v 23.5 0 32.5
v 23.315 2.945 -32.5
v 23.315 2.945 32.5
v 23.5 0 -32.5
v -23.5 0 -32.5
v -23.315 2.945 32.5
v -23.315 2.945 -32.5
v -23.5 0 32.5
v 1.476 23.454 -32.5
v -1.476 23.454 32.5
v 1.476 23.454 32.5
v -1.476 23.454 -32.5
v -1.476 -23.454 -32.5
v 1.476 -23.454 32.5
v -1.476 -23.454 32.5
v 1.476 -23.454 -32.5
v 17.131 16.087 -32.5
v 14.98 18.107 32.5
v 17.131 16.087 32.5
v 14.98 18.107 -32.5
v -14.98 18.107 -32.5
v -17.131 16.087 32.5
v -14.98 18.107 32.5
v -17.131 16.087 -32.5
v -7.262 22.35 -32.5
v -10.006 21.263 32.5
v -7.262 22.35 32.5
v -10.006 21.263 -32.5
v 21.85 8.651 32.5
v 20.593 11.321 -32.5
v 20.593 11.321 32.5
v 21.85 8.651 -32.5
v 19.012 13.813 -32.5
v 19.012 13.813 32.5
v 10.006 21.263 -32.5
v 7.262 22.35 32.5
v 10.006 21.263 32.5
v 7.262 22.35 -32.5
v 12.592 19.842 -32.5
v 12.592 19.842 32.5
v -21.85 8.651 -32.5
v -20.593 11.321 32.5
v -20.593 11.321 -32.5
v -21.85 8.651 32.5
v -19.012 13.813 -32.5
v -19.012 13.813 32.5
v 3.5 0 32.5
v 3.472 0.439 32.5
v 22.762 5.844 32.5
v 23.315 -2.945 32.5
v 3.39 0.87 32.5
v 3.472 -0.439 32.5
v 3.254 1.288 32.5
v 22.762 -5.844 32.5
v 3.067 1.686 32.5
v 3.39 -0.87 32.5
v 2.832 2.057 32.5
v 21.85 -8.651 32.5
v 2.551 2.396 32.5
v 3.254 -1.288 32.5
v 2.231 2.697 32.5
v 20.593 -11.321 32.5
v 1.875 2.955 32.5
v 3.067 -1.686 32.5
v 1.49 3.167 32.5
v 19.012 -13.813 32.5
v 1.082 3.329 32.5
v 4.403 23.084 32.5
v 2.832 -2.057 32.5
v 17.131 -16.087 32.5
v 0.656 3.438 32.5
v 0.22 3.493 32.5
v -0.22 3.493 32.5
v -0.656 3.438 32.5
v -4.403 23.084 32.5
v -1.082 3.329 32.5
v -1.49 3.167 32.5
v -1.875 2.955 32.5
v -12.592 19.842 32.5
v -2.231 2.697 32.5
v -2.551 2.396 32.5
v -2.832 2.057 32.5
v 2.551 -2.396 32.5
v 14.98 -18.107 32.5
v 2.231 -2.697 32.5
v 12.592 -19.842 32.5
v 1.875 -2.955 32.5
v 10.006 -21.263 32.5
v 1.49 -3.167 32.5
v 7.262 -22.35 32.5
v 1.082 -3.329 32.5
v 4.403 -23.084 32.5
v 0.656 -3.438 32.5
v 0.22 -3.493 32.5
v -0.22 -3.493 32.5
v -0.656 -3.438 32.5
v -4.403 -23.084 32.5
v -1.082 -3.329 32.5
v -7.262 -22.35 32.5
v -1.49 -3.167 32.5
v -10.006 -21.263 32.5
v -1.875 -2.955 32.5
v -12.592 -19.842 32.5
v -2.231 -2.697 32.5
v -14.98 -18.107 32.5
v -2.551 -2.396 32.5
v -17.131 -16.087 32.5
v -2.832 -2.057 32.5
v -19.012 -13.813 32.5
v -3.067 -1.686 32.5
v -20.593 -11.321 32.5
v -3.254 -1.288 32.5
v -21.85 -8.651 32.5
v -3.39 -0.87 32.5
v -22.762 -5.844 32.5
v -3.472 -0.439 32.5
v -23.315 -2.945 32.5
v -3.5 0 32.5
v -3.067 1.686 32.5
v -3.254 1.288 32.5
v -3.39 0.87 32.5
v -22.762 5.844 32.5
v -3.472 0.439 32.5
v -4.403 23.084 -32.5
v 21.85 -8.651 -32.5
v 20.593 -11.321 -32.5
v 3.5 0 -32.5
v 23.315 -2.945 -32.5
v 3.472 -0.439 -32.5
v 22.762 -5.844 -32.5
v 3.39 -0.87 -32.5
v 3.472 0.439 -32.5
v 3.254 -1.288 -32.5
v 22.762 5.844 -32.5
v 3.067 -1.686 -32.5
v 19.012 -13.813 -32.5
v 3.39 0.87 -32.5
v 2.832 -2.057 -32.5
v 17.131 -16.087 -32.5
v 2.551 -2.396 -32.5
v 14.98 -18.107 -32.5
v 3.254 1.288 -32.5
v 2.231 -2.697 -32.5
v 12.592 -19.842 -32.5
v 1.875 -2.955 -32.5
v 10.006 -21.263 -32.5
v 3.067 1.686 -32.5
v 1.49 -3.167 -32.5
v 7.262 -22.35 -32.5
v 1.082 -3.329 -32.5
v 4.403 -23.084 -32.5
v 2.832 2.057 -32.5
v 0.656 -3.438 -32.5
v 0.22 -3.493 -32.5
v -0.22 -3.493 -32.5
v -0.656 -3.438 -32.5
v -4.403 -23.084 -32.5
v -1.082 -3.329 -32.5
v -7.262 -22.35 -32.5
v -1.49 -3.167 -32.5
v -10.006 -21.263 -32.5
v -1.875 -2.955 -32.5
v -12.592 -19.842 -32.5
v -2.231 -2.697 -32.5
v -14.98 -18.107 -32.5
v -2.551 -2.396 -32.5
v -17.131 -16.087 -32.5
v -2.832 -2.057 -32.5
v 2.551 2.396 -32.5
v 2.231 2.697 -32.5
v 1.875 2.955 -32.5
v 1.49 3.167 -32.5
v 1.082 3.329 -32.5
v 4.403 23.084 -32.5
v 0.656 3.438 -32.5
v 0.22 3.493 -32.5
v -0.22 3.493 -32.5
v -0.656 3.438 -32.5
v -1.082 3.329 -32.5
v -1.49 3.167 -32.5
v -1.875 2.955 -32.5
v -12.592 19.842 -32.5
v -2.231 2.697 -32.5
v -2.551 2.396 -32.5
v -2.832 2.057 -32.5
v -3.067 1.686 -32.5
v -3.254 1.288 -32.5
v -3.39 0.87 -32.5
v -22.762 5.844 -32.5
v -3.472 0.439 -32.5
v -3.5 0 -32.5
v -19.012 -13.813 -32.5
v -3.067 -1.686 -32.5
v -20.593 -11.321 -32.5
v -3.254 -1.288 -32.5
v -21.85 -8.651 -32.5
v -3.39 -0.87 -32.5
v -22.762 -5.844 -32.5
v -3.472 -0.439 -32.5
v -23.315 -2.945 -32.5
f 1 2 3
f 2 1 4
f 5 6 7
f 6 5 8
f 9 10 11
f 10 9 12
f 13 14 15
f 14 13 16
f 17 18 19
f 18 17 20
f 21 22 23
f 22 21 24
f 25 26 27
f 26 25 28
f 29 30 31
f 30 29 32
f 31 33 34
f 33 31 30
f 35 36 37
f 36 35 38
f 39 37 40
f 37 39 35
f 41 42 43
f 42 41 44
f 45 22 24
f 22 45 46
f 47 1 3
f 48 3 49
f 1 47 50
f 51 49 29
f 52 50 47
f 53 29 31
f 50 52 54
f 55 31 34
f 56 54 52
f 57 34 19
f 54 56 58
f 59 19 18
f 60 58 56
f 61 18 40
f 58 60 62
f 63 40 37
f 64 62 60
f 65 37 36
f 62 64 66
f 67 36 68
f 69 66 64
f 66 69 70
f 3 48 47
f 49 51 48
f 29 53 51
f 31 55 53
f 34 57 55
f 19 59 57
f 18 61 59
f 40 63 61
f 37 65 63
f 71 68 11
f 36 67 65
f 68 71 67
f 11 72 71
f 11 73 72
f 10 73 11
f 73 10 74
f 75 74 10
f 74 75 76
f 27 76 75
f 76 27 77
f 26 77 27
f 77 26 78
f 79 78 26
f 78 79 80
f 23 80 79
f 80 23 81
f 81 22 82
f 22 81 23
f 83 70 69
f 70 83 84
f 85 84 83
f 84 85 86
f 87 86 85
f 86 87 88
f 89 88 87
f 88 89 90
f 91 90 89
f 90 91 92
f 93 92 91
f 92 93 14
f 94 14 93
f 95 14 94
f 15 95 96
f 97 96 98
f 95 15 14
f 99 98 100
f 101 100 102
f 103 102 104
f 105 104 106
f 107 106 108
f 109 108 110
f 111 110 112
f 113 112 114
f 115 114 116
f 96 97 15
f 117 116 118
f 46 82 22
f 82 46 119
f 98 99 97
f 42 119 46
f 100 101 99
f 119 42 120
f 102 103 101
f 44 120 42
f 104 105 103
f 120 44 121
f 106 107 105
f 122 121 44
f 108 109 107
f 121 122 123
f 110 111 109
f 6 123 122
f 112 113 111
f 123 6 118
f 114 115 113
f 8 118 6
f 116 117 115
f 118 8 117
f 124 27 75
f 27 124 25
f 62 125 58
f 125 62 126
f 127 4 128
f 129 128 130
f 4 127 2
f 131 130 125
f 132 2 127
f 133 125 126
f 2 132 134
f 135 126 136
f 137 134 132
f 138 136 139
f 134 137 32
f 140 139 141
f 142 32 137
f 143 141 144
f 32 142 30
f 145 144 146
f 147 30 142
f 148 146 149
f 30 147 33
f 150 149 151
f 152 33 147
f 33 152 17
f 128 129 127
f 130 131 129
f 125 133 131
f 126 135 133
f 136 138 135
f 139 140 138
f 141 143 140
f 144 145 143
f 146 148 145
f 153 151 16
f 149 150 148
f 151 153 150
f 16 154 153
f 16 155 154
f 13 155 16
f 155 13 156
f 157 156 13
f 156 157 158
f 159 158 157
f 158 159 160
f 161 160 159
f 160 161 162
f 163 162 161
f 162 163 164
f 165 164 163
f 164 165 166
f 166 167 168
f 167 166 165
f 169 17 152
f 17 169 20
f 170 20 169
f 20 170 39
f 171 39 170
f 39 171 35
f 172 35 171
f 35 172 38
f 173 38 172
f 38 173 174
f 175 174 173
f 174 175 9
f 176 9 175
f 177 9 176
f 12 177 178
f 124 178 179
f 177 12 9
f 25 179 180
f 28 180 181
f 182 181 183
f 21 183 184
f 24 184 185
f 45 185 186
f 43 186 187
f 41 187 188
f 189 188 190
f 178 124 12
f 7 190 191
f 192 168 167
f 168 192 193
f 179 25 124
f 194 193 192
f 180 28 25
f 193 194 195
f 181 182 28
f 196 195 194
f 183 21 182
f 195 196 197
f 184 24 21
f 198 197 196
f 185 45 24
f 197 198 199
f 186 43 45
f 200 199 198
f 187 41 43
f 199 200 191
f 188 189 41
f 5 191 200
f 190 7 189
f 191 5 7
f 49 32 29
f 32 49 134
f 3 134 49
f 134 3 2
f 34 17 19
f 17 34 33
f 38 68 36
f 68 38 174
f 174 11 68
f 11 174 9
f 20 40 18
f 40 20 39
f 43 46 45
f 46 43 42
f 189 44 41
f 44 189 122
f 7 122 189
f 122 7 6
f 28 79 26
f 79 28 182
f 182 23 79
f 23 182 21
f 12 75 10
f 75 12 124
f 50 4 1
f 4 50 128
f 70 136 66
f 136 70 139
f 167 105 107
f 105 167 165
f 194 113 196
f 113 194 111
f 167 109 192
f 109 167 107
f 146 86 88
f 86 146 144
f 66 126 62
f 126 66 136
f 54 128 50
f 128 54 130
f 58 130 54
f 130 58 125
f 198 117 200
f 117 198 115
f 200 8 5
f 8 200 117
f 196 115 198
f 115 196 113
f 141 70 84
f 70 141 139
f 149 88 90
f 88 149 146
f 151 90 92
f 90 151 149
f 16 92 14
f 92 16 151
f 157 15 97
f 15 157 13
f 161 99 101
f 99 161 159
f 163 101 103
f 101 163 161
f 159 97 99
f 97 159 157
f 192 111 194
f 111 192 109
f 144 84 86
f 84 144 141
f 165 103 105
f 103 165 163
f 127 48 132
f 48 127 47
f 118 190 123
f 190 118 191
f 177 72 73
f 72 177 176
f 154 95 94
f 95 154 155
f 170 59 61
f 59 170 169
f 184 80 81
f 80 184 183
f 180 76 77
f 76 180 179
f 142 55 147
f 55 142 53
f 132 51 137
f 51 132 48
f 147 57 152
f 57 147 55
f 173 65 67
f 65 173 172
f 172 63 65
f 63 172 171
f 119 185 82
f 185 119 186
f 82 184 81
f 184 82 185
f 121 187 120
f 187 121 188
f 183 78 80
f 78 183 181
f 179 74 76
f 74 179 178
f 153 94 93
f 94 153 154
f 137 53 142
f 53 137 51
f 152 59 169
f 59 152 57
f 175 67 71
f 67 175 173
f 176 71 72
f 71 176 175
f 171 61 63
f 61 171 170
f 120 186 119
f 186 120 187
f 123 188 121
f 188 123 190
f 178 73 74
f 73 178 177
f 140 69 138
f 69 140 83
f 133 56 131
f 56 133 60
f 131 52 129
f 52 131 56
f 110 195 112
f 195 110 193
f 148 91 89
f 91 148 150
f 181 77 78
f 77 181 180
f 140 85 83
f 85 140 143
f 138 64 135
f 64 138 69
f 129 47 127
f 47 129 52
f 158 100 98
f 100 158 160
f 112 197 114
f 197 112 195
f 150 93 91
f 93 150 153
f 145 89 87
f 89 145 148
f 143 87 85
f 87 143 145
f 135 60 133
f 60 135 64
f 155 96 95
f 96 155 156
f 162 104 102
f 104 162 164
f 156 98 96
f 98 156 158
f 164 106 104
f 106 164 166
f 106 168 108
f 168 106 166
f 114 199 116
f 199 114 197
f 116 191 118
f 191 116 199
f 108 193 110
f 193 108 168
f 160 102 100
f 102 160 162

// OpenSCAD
$fn = 50;


difference() {
	union() {
		translate(v = [0, 0, -32.5000000000]) {
			cylinder(h = 65, r = 23.5000000000);
		}
	}
	union() {
		translate(v = [0, 0, -100.0000000000]) {
			cylinder(h = 200, r = 3.5000000000);
		}
	}
}
